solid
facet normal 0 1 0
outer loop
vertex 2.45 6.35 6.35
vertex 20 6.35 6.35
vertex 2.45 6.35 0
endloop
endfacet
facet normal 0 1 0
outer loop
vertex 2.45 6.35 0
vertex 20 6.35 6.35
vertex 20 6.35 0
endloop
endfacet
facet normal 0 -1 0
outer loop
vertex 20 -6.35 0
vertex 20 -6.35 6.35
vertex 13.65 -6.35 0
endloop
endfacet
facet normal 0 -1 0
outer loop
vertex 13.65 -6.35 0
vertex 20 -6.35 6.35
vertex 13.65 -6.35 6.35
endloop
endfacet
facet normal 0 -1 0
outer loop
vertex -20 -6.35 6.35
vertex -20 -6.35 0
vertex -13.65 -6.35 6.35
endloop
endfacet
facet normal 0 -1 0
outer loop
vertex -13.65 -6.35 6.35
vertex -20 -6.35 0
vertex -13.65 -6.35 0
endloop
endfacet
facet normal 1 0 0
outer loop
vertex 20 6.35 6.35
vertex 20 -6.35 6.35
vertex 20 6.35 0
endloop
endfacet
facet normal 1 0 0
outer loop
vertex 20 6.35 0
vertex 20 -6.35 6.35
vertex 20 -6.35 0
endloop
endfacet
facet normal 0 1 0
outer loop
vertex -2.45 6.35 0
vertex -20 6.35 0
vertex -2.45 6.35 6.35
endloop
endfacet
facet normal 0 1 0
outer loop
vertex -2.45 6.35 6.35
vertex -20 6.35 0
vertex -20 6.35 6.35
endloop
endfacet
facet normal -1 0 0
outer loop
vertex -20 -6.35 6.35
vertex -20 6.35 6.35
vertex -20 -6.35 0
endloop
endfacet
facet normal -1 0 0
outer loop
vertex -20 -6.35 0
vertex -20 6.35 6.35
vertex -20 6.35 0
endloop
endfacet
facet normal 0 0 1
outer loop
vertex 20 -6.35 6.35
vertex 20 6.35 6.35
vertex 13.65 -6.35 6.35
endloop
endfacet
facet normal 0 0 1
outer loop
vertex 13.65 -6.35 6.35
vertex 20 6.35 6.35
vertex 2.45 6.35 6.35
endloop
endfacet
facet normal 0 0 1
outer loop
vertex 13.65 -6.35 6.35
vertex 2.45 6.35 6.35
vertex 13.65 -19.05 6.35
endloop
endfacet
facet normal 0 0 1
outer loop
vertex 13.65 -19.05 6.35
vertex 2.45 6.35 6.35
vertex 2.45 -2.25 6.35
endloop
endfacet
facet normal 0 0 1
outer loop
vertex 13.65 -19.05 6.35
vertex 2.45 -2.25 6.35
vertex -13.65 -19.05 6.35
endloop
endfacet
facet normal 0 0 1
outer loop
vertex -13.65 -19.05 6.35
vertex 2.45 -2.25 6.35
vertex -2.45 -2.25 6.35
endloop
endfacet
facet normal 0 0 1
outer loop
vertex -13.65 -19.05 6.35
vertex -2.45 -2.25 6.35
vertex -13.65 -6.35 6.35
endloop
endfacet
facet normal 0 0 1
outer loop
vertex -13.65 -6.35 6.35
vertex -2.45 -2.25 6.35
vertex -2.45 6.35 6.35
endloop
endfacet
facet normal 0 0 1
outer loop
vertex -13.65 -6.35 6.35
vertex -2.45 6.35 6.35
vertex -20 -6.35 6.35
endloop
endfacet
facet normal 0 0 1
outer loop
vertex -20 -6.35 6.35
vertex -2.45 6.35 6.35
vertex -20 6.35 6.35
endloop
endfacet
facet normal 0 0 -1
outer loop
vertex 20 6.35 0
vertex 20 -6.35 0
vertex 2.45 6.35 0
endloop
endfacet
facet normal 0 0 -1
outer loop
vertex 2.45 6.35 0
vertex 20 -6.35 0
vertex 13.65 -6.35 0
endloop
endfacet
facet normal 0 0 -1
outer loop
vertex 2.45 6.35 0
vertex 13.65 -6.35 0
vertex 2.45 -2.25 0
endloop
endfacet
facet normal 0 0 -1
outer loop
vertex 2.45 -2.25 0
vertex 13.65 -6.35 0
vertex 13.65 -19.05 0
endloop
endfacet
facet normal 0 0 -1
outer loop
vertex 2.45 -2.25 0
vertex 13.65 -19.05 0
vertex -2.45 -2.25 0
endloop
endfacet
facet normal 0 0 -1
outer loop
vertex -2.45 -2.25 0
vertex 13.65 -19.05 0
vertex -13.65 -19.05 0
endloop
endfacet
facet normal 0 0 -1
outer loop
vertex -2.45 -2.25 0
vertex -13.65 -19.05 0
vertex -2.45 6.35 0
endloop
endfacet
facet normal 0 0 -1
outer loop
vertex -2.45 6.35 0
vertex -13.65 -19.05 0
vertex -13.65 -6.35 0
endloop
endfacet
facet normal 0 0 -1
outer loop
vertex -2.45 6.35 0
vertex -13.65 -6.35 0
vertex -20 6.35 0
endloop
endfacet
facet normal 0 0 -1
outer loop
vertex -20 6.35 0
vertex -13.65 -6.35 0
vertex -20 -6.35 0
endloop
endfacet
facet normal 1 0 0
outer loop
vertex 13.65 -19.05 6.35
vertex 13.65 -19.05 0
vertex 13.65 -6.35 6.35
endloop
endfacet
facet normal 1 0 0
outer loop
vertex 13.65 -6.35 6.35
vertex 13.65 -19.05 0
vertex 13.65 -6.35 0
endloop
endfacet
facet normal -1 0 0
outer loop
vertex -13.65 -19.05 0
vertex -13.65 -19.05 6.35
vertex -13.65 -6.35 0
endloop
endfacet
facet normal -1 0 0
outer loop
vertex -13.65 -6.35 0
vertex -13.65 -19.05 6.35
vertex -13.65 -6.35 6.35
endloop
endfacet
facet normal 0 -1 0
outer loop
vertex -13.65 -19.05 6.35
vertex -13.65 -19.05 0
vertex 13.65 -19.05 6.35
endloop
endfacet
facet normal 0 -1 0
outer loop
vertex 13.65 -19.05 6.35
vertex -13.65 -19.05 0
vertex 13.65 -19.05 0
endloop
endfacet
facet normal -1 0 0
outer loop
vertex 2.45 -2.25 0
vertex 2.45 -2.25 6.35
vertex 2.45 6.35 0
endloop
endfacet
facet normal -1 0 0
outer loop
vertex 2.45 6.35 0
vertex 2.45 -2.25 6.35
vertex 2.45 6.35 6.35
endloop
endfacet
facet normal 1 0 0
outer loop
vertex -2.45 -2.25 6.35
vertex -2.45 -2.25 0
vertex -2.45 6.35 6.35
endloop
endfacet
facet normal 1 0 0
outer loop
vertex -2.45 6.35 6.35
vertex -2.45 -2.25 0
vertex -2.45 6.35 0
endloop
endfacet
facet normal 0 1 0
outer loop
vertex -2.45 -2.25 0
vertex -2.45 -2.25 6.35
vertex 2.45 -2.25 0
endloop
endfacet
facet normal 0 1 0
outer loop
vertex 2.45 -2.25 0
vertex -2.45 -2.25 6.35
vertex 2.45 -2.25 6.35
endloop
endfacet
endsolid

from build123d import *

# Parameters (mm, degrees)
SKETCH2_W           = 40
SKETCH2_H           = 12.7
BOSS_EXTRUDE1_DEPTH = 6.35
SKETCH3_W           = 27.3
SKETCH3_H           = 6.35
BOSS_EXTRUDE2_DEPTH = 12.7
SKETCH4_W           = 4.9
SKETCH4_H           = 6.35
CUT_EXTRUDE1_DEPTH  = 8.6


with BuildPart() as part:
    # Sketch2 → Boss-Extrude1 (new body)
    with BuildSketch(Plane.XY):
        Rectangle(SKETCH2_W, SKETCH2_H)
    extrude(amount=BOSS_EXTRUDE1_DEPTH)

    # Sketch3 → Boss-Extrude2 (add)
    with BuildSketch(Plane.XZ.offset(6.35)):
        with Locations((0, 3.175)):
            Rectangle(SKETCH3_W, SKETCH3_H)
    extrude(amount=BOSS_EXTRUDE2_DEPTH)

    # Sketch4 → Cut-Extrude1 (cut)
    with BuildSketch(Plane(origin=(0, 6.35, 0), x_dir=(1, 0, 0), z_dir=(0, 1, 0))):
        with Locations((0, -3.175)):
            Rectangle(SKETCH4_W, SKETCH4_H)
    extrude(amount=-CUT_EXTRUDE1_DEPTH, mode=Mode.SUBTRACT)


solid = part.part
